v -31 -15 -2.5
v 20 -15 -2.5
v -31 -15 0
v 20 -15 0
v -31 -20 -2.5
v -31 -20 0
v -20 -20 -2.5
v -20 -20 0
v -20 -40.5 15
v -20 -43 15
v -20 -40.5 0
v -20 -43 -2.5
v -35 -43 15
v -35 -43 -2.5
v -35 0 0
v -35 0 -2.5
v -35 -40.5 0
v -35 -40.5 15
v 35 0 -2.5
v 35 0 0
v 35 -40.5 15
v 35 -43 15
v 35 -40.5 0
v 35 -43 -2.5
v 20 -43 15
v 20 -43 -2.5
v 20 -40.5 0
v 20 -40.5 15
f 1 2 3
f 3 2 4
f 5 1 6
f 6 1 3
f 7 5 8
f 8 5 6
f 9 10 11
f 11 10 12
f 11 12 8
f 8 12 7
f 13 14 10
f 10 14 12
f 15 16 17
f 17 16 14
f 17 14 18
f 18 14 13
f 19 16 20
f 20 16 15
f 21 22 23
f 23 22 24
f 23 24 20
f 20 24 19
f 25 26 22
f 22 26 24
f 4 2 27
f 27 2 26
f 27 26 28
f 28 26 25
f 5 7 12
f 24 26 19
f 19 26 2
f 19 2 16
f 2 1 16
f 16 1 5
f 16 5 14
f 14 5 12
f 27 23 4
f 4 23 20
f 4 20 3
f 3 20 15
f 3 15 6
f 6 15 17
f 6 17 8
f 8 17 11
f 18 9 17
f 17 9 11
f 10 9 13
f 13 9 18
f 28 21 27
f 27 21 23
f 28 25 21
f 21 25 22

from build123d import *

# Parameters (mm, degrees)
BASE_FLANGE1_DEPTH  = 2.5
SKETCH6_W           = 15
SKETCH6_H           = 2.5
BOSS_EXTRUDE1_DEPTH = 15


# Sheet-metal steps are written as plain solids
with BuildPart() as part:
    # Sketch1 → Base-Flange1 (new body)
    with BuildSketch(Plane.XY):
        Polygon((-35, 0), (35, 0), (35, -43), (20, -43), (20, -15), (-31, -15), (-31, -20), (-20, -20), (-20, -43), (-35, -43), align=None)
    extrude(amount=-BASE_FLANGE1_DEPTH)

    # Sketch6 → Boss-Extrude1 (add)
    with BuildSketch(Plane.XY):
        with Locations((-27.5, -41.75)):
            Rectangle(SKETCH6_W, SKETCH6_H)
    boss_extrude1 = extrude(amount=BOSS_EXTRUDE1_DEPTH)

    # Mirror1: Boss-Extrude1 across plane
    add(boss_extrude1.mirror(Plane(origin=(0, 0, 0), x_dir=(0, 0, 1), z_dir=(1, 0, 0))))


solid = part.part
